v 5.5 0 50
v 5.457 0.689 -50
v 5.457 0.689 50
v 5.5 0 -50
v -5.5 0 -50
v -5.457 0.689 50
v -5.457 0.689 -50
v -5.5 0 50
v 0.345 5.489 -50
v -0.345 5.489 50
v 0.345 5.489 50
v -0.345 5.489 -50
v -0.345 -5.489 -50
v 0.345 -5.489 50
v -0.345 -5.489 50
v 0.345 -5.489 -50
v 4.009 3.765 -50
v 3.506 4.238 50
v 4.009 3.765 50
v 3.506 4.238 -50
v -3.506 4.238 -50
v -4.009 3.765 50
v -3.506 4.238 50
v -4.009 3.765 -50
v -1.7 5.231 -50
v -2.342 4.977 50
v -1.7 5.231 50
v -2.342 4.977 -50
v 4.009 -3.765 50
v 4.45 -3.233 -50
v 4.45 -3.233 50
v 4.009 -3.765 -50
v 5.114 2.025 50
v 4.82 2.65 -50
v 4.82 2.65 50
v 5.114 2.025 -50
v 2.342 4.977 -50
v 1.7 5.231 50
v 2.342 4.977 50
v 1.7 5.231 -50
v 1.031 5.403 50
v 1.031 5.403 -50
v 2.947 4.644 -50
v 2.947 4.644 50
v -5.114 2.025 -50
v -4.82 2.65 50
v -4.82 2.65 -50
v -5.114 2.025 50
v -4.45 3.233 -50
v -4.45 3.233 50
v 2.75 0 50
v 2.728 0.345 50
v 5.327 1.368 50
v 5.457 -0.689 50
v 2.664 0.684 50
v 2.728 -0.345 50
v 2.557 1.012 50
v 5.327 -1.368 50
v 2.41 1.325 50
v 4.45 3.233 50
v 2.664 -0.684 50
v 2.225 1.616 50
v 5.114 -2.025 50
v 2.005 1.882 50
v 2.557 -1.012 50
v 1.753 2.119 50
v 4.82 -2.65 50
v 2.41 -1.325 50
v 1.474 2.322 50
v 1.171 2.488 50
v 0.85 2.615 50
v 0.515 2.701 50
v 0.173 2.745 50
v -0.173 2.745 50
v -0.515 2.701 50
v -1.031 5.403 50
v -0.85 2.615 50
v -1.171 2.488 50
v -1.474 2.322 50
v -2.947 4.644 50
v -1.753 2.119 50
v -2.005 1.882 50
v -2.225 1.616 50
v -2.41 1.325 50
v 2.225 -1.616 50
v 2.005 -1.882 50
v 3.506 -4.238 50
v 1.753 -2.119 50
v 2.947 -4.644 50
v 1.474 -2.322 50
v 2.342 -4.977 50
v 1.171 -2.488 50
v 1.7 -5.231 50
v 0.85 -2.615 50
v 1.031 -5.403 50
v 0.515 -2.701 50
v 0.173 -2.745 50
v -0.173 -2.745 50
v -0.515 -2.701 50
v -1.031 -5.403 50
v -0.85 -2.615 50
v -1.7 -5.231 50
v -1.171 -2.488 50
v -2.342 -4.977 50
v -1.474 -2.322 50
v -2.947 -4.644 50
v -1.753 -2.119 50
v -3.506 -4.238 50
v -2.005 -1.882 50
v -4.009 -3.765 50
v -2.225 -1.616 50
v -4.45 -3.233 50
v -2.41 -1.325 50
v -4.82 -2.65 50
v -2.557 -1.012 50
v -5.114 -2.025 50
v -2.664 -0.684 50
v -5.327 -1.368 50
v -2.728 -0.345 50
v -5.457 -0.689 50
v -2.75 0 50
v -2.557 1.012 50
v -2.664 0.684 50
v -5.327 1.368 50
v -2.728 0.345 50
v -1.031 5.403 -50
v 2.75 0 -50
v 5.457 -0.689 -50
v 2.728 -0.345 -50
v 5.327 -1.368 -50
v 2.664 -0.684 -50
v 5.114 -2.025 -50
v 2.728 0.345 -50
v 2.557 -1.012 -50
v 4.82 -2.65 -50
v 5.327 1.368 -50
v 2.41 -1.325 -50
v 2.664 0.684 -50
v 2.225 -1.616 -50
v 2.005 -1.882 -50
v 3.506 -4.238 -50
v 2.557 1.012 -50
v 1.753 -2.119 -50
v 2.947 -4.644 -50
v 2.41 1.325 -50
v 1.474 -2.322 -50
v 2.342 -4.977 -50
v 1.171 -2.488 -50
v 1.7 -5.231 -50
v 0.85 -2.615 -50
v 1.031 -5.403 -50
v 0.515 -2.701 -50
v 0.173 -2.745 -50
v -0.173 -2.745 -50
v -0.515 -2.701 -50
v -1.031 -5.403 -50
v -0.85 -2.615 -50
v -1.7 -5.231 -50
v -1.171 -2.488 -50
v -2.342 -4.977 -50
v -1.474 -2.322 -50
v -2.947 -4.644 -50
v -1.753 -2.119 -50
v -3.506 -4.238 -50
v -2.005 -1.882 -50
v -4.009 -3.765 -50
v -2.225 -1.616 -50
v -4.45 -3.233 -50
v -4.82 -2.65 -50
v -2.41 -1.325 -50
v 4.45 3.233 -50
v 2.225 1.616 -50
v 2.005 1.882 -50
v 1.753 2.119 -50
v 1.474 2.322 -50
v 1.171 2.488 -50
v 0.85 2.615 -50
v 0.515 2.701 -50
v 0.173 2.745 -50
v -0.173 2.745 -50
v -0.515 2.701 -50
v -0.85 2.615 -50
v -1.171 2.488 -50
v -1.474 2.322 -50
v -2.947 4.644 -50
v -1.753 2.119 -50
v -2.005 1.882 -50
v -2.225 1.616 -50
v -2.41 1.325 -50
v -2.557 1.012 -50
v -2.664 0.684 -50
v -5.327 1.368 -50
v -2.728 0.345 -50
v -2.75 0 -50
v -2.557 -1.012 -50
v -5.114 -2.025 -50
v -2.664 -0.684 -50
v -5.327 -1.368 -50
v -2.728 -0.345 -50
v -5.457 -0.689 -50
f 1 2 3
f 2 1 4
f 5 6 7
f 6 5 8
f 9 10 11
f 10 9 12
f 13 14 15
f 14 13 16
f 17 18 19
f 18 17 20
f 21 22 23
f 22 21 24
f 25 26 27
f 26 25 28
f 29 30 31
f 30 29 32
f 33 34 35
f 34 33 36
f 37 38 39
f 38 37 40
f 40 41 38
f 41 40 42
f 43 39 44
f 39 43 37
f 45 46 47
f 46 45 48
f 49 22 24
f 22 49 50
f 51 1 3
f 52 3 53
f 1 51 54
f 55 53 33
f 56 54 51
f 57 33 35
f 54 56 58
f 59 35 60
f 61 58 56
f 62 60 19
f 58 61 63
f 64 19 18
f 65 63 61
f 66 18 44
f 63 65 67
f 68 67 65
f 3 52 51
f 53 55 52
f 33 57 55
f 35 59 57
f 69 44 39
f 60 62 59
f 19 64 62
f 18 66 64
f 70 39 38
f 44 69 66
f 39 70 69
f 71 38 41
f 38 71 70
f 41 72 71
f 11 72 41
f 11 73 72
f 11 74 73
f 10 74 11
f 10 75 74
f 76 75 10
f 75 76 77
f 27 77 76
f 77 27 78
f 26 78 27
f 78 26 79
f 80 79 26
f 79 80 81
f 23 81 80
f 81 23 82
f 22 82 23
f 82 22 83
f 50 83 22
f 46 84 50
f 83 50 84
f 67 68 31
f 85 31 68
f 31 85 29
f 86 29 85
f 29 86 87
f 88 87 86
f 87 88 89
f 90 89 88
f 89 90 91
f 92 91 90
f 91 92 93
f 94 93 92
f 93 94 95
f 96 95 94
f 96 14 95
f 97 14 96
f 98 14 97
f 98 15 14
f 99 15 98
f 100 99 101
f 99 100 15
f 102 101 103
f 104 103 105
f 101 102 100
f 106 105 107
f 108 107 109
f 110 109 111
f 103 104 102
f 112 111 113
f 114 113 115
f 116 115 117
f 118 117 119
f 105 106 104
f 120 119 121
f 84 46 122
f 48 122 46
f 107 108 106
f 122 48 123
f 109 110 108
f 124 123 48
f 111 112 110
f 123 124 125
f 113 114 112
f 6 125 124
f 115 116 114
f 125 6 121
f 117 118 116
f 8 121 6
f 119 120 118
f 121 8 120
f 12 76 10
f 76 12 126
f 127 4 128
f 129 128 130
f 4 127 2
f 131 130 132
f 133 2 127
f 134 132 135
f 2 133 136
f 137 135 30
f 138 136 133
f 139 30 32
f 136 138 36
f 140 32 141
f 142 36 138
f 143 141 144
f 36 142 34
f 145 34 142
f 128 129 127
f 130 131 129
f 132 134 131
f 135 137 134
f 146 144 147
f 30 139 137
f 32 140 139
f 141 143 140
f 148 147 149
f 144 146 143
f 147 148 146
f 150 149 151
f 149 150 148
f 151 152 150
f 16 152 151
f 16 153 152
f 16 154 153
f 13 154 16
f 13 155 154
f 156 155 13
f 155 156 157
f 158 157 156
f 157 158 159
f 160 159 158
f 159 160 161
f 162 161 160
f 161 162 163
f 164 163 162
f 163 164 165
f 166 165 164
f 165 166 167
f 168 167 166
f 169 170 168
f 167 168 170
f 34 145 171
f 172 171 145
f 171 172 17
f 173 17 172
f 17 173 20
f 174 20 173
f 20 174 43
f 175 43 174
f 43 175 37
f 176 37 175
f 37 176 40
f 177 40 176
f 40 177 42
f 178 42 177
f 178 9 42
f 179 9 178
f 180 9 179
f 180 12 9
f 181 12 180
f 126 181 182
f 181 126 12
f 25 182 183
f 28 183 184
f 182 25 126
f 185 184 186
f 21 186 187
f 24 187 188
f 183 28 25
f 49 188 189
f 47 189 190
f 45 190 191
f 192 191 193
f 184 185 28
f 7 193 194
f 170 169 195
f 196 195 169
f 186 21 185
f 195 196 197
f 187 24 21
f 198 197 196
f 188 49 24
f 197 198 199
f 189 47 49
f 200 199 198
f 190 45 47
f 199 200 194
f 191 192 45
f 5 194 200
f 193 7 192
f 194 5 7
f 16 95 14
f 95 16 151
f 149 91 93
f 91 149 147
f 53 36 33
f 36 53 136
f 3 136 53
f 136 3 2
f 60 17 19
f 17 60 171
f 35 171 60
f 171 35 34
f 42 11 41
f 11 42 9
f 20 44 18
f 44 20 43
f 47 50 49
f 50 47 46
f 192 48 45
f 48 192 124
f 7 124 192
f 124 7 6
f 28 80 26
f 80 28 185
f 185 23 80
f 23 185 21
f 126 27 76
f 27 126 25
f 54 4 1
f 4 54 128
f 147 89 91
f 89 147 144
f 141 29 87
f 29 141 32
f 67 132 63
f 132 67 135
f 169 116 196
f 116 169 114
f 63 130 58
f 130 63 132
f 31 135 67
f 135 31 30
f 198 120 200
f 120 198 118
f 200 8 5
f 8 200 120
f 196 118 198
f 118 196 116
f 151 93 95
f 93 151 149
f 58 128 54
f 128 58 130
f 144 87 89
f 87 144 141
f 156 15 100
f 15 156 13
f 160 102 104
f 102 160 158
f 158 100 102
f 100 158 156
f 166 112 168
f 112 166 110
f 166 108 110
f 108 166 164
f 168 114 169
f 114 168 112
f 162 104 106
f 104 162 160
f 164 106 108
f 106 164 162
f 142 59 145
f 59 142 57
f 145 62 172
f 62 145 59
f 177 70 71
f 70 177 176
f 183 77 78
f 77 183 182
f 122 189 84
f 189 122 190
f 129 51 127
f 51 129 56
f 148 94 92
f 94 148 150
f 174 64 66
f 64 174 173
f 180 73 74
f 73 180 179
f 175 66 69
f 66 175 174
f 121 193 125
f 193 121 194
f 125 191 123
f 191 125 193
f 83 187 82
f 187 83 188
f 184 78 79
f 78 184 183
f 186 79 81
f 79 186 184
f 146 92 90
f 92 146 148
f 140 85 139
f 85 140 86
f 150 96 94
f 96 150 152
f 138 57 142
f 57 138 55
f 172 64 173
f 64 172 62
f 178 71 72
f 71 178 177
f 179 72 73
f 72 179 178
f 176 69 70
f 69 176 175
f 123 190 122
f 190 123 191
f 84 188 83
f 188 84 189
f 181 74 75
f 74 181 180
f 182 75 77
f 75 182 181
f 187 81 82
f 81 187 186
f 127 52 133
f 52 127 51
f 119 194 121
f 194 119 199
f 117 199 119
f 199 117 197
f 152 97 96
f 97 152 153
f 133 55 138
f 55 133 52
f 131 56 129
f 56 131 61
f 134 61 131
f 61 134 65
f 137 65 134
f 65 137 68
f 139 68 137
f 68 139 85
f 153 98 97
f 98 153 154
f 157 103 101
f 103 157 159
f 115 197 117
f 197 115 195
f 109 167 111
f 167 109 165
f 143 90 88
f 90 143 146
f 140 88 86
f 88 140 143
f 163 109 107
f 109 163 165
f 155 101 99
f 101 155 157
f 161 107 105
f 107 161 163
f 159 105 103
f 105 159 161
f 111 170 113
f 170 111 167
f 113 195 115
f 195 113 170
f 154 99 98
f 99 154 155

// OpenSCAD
$fn = 50;


difference() {
	union() {
		translate(v = [0, 0, -50.0000000000]) {
			cylinder(h = 100, r = 5.5000000000);
		}
	}
	union() {
		translate(v = [0, 0, -100.0000000000]) {
			cylinder(h = 200, r = 2.7500000000);
		}
	}
}
